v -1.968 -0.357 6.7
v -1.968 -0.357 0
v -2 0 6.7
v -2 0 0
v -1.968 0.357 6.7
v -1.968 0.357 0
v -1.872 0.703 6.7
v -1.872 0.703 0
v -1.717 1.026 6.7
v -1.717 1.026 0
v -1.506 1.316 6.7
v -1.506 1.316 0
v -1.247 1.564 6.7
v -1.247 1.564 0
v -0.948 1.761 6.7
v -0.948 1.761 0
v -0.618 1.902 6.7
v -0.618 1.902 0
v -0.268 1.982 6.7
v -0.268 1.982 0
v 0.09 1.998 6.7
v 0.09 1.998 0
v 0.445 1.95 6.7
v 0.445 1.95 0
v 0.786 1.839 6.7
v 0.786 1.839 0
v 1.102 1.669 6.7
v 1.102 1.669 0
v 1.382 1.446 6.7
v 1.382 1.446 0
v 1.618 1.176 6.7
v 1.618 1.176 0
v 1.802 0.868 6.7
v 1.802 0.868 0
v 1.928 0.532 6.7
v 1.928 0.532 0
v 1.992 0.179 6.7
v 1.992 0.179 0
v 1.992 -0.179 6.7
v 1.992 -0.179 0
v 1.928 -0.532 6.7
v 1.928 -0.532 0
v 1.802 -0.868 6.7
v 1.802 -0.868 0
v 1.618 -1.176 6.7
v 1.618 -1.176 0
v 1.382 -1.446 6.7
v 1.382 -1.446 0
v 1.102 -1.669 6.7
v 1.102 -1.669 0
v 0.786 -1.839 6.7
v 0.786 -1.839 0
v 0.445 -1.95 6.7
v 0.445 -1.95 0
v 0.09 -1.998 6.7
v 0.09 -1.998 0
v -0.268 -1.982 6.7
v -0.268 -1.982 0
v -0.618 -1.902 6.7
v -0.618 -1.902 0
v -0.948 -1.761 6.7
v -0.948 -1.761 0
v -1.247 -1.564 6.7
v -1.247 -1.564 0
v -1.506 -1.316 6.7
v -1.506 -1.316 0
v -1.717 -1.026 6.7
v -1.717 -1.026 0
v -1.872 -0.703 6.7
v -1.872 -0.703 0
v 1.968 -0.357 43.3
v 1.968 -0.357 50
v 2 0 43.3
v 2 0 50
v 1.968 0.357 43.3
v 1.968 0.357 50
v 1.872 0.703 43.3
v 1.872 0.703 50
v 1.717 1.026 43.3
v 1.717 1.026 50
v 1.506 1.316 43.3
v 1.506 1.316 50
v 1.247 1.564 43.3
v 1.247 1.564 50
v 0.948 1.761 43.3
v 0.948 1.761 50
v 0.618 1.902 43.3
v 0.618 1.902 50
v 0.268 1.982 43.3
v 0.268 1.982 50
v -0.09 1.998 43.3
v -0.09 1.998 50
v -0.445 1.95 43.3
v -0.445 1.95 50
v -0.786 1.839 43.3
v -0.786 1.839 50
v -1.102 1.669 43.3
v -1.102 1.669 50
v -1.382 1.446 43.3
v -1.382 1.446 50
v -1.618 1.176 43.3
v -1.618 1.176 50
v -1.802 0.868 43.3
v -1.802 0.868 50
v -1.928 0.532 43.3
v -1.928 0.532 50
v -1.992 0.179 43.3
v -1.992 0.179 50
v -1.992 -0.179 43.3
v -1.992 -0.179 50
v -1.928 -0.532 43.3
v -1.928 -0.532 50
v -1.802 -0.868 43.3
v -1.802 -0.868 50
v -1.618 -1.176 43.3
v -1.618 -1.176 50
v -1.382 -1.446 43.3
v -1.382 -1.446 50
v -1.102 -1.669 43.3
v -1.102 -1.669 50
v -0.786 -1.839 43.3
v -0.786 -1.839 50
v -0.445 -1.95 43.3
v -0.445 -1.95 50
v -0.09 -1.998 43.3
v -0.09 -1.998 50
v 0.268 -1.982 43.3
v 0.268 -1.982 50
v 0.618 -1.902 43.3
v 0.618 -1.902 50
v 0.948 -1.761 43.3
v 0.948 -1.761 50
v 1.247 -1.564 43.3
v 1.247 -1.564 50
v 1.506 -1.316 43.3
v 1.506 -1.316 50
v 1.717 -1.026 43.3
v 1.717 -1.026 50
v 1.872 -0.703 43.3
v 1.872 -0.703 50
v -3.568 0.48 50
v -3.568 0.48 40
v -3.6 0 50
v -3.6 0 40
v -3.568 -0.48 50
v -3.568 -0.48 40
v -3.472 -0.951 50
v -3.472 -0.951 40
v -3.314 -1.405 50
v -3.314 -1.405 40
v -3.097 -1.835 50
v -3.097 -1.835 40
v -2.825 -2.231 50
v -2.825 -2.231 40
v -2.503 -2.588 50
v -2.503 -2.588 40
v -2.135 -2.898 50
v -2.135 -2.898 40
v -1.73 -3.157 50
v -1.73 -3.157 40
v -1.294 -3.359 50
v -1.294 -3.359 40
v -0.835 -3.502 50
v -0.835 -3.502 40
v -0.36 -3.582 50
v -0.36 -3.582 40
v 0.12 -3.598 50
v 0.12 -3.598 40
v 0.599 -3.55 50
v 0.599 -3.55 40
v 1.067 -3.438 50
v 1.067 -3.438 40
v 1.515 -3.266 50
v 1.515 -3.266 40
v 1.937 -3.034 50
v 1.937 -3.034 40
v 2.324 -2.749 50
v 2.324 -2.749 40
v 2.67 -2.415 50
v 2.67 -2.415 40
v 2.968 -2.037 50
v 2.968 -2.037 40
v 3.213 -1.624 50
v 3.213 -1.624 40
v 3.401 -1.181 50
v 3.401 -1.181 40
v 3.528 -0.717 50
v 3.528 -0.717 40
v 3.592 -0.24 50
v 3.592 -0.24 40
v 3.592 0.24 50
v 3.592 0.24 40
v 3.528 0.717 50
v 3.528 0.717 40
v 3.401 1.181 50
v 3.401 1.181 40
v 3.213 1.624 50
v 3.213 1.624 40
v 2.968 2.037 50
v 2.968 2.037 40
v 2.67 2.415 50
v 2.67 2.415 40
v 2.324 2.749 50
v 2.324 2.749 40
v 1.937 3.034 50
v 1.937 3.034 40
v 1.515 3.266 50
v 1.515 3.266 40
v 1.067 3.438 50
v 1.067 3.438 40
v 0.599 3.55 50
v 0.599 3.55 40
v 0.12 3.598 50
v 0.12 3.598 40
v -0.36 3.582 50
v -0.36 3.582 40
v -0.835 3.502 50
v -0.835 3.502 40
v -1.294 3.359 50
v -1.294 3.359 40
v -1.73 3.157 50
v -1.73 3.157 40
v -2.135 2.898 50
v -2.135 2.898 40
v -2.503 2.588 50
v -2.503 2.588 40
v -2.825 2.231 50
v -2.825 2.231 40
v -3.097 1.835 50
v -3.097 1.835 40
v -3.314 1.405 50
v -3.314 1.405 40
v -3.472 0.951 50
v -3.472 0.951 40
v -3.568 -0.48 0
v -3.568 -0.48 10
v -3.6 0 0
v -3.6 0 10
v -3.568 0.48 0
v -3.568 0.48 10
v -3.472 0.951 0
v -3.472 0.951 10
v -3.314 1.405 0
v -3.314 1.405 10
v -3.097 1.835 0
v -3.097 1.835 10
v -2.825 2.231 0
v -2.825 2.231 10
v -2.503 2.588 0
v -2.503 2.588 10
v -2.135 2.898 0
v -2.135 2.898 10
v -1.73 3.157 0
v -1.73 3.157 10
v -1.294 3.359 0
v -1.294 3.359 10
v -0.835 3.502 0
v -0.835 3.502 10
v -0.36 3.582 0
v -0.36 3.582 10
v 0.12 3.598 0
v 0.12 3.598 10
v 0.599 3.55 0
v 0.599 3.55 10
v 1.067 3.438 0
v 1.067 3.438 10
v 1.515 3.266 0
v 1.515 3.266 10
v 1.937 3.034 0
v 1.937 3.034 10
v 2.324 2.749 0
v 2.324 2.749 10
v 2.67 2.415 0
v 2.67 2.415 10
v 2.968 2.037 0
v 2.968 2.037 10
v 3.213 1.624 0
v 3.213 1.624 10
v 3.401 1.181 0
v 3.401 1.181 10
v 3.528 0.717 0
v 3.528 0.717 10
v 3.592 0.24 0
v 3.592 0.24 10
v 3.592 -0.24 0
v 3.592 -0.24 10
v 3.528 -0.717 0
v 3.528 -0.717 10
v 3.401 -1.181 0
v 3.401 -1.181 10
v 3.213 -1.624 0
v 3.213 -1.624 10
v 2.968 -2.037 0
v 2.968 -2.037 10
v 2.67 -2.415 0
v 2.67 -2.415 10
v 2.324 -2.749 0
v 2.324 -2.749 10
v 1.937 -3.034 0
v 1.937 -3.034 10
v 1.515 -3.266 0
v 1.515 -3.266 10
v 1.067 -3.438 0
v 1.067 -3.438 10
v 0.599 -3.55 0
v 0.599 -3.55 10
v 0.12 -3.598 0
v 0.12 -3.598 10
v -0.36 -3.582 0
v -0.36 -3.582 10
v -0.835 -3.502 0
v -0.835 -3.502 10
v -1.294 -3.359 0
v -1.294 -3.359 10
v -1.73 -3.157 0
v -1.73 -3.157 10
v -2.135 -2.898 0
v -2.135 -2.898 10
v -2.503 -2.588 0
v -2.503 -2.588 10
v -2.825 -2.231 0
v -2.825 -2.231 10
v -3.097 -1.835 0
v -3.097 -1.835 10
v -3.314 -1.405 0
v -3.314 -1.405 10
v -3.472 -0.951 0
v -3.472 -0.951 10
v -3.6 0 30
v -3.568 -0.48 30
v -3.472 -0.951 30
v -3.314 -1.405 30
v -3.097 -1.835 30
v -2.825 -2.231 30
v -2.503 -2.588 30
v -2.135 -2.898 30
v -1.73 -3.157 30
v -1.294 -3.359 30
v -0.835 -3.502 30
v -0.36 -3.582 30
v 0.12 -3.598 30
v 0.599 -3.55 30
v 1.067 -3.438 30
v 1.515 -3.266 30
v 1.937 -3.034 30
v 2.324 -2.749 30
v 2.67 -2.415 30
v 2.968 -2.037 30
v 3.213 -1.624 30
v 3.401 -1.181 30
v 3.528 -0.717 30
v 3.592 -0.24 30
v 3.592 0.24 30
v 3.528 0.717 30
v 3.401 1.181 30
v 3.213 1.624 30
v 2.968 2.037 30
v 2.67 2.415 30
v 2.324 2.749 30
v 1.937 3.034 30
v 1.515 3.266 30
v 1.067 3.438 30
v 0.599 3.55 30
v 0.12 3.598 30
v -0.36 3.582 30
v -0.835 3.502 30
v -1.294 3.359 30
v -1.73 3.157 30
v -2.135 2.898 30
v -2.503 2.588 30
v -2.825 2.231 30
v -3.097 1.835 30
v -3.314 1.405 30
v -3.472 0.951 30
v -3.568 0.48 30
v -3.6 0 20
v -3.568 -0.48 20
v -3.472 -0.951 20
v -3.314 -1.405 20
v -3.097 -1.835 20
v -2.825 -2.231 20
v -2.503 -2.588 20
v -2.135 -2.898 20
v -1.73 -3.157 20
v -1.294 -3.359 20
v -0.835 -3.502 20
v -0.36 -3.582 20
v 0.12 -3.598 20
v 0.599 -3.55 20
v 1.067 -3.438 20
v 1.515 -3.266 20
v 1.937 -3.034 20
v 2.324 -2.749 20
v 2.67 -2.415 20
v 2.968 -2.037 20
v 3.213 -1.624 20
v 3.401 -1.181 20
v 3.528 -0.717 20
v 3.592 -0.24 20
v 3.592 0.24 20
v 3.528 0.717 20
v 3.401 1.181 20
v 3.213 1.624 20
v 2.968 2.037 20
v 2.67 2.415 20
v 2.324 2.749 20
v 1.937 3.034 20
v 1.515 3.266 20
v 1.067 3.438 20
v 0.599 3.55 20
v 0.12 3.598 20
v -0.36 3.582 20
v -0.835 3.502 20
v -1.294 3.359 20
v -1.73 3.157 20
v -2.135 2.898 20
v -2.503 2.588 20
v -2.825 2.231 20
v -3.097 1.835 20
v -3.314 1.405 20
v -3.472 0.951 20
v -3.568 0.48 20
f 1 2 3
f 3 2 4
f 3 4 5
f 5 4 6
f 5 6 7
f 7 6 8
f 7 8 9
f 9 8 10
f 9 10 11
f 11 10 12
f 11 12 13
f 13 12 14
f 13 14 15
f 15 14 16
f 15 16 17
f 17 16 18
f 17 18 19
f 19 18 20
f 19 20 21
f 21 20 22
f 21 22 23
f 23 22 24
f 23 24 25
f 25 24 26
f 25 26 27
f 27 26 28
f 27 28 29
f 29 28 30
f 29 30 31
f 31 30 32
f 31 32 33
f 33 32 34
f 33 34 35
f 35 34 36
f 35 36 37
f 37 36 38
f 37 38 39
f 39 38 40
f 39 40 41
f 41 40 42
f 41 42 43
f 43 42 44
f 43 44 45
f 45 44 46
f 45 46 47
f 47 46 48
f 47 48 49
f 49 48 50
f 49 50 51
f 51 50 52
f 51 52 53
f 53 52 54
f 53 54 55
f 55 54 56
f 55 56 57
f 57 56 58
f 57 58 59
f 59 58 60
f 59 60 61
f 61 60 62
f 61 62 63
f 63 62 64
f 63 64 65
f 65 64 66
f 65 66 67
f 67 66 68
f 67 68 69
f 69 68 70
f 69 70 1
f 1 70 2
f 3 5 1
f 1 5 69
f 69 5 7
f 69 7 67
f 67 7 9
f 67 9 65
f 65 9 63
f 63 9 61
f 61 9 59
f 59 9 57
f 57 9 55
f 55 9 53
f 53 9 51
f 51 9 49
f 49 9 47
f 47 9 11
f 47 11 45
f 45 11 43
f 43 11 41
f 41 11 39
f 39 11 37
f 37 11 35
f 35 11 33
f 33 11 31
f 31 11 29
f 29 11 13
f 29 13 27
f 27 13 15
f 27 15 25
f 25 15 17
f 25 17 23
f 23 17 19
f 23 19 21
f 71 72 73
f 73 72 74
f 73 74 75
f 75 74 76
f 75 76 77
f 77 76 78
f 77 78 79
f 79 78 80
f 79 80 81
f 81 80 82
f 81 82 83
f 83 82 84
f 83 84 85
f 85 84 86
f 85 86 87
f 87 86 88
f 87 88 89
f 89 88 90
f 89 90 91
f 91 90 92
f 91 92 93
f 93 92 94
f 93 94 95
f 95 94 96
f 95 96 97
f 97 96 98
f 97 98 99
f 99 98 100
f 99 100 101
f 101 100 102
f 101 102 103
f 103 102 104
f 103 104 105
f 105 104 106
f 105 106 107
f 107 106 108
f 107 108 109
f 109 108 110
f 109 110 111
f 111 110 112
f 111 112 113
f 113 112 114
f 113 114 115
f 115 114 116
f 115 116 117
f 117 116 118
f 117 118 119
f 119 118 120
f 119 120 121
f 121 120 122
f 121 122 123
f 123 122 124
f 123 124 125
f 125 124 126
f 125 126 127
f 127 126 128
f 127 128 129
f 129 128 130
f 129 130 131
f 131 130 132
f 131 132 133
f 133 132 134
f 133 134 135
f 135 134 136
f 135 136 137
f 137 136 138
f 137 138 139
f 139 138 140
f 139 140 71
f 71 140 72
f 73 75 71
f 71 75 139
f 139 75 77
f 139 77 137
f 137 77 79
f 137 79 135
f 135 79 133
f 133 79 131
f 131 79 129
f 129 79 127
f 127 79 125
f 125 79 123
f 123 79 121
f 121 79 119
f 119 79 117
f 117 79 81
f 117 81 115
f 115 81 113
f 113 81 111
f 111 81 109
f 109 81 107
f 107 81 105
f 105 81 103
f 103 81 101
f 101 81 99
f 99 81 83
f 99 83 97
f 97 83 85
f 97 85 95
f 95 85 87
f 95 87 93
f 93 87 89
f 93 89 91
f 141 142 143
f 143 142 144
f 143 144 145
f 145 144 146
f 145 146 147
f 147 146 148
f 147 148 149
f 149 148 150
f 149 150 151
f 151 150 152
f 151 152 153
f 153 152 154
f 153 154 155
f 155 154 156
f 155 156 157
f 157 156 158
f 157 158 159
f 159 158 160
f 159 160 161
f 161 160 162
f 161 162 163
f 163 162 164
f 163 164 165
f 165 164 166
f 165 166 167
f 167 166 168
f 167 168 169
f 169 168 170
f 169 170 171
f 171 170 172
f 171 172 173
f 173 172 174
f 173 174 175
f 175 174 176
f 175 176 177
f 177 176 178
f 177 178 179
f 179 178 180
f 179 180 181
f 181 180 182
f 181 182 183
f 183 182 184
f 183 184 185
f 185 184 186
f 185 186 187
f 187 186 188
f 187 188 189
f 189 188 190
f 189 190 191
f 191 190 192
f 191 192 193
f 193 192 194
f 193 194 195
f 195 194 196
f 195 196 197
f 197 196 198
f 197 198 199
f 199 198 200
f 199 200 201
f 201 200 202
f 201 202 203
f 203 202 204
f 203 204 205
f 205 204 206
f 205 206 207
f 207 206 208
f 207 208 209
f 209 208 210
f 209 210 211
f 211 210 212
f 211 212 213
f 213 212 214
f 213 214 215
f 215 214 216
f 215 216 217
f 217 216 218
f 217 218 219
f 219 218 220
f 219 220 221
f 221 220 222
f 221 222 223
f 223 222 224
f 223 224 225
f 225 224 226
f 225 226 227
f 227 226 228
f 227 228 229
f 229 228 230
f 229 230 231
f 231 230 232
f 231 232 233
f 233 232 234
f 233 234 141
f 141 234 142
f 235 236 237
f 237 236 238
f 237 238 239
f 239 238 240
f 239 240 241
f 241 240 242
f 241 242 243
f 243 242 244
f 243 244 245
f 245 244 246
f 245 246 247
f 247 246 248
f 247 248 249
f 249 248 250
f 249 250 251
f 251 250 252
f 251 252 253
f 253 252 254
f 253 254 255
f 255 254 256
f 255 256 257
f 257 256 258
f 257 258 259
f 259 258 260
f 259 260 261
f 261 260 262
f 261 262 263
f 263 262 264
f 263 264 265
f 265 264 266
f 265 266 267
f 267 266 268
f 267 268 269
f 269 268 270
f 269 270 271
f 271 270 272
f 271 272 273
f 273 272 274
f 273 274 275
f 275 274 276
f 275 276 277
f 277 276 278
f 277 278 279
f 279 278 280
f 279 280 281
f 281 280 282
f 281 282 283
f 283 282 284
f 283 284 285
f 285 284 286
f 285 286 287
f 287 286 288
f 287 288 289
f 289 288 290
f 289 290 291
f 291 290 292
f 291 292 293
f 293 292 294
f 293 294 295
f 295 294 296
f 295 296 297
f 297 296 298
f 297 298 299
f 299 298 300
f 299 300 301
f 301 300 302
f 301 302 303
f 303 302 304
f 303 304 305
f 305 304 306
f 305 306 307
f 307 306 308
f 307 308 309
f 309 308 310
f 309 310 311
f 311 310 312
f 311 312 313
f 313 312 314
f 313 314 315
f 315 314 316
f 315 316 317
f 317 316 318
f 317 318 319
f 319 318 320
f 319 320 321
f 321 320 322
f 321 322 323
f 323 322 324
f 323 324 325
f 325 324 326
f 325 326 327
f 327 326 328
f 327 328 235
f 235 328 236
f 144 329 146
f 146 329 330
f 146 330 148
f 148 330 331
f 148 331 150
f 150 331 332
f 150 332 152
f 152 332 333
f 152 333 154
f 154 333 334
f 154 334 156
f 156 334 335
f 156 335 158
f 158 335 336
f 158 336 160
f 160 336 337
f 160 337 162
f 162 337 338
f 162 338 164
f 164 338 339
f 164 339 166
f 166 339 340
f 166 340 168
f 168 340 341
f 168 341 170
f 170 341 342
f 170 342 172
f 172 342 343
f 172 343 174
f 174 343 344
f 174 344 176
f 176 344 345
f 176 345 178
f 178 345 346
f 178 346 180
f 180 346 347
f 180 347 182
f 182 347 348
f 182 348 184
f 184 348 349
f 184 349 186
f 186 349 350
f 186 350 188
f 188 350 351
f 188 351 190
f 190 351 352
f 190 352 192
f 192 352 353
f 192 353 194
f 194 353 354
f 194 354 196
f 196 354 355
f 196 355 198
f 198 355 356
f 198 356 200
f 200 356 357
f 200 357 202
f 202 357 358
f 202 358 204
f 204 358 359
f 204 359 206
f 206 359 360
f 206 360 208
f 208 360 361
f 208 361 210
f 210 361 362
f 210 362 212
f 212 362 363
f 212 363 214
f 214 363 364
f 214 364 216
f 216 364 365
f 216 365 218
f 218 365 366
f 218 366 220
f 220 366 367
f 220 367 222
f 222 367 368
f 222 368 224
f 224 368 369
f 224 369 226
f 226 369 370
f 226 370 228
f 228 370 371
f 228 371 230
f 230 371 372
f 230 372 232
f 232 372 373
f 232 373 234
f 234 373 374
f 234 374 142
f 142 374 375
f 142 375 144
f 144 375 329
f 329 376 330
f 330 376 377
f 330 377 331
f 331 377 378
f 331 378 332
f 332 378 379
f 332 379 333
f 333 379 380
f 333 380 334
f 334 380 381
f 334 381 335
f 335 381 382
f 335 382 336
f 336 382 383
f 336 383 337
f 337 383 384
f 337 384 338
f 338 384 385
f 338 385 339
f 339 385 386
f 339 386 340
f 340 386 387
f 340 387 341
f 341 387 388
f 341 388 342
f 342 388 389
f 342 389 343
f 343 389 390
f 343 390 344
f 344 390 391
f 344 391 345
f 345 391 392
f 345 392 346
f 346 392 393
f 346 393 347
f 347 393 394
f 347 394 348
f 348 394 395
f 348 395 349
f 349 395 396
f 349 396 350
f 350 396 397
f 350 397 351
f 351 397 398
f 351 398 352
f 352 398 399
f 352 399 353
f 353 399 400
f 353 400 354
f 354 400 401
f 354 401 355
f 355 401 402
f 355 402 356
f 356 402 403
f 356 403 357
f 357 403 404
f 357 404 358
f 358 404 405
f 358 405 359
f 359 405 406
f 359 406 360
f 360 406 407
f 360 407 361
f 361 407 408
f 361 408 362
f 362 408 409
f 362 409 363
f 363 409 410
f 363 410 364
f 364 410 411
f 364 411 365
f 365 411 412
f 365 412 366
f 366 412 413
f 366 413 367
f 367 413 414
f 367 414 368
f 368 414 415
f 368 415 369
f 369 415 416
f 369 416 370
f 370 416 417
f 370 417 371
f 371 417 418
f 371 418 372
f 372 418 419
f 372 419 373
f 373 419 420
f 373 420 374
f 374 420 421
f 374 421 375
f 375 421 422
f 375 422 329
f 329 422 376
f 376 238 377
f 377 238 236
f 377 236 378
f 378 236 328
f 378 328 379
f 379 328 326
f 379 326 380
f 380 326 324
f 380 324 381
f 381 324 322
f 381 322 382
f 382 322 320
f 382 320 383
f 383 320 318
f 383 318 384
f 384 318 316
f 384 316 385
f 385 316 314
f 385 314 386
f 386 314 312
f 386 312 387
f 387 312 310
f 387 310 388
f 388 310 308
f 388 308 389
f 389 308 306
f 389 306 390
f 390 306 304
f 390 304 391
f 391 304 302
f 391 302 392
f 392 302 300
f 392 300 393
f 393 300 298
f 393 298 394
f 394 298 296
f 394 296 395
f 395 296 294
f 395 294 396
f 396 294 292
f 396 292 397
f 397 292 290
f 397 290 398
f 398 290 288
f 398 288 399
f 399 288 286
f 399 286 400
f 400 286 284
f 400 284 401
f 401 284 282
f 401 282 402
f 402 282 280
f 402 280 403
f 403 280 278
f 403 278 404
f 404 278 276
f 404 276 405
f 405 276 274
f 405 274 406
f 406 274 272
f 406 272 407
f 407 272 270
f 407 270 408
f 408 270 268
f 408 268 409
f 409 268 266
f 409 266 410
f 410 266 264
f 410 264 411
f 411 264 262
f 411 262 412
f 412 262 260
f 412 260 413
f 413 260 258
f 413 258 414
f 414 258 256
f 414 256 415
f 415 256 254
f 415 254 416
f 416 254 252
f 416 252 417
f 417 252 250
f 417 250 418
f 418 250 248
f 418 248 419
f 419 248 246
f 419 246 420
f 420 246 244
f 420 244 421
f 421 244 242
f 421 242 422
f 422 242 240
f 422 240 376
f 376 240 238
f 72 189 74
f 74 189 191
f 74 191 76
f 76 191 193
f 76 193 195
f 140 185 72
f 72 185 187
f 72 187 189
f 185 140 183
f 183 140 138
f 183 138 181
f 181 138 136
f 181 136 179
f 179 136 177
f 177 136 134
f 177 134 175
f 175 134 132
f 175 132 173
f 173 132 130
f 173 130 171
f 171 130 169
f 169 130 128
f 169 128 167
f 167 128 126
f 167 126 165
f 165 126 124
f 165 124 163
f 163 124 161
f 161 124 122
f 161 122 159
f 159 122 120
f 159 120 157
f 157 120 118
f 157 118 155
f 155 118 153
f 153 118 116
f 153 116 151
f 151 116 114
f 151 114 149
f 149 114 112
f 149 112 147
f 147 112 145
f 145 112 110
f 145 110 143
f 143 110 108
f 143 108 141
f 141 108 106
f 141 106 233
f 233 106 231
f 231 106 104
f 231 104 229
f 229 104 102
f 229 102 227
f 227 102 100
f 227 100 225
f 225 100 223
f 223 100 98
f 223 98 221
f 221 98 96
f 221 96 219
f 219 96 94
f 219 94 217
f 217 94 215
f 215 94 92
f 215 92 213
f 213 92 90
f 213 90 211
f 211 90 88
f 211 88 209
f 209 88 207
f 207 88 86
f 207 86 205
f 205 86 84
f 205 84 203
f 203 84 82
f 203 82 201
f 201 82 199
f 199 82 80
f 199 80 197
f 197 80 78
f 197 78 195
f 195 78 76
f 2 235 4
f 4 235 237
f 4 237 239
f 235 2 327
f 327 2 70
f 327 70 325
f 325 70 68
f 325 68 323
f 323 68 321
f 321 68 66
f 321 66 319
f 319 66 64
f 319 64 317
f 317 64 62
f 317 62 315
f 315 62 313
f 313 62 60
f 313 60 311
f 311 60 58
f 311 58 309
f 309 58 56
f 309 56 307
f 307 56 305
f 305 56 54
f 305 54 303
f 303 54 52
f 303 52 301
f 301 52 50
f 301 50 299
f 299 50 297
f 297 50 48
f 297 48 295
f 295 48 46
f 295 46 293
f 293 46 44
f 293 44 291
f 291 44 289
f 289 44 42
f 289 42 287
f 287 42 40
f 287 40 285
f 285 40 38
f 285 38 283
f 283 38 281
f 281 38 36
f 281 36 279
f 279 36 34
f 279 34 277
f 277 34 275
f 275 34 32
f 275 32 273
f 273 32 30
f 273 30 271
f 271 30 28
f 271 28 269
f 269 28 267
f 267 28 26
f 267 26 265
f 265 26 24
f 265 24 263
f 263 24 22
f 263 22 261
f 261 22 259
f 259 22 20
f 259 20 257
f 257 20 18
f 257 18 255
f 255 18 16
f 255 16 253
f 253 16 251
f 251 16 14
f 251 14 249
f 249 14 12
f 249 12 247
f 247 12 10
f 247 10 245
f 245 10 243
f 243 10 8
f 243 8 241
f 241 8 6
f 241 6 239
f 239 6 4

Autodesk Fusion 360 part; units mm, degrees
sketch "Sketch1" plane through (0, 0, 0) normal (0, 0, 1) x (1, 0, 0)
  circle A0 centre (0, 0) radius 3.6
  dimension "d1" = 7.2
extrude "Extrude1" add sketch "Sketch1" along normal blind 50
sketch "Sketch2" plane through (0, 0, 50) normal (0, 0, 1) x (-1, 0, 0)
  circle A0 centre (0, 0) radius 3.6
  circle A1 centre (0, 0) radius 2
  dimension "d4" = 4
extrude "Extrude2" cut sketch "Sketch2" against normal blind 6.7 contours A1
sketch "Sketch3" plane through (0, 0, 0) normal (0, 0, -1) x (1, 0, 0)
  circle A0 centre (0, 0) radius 3.6
  circle A1 centre (0, 0) radius 2
  dimension "d7" = 4
extrude "Extrude3" cut sketch "Sketch3" against normal blind 6.7 contours A1
